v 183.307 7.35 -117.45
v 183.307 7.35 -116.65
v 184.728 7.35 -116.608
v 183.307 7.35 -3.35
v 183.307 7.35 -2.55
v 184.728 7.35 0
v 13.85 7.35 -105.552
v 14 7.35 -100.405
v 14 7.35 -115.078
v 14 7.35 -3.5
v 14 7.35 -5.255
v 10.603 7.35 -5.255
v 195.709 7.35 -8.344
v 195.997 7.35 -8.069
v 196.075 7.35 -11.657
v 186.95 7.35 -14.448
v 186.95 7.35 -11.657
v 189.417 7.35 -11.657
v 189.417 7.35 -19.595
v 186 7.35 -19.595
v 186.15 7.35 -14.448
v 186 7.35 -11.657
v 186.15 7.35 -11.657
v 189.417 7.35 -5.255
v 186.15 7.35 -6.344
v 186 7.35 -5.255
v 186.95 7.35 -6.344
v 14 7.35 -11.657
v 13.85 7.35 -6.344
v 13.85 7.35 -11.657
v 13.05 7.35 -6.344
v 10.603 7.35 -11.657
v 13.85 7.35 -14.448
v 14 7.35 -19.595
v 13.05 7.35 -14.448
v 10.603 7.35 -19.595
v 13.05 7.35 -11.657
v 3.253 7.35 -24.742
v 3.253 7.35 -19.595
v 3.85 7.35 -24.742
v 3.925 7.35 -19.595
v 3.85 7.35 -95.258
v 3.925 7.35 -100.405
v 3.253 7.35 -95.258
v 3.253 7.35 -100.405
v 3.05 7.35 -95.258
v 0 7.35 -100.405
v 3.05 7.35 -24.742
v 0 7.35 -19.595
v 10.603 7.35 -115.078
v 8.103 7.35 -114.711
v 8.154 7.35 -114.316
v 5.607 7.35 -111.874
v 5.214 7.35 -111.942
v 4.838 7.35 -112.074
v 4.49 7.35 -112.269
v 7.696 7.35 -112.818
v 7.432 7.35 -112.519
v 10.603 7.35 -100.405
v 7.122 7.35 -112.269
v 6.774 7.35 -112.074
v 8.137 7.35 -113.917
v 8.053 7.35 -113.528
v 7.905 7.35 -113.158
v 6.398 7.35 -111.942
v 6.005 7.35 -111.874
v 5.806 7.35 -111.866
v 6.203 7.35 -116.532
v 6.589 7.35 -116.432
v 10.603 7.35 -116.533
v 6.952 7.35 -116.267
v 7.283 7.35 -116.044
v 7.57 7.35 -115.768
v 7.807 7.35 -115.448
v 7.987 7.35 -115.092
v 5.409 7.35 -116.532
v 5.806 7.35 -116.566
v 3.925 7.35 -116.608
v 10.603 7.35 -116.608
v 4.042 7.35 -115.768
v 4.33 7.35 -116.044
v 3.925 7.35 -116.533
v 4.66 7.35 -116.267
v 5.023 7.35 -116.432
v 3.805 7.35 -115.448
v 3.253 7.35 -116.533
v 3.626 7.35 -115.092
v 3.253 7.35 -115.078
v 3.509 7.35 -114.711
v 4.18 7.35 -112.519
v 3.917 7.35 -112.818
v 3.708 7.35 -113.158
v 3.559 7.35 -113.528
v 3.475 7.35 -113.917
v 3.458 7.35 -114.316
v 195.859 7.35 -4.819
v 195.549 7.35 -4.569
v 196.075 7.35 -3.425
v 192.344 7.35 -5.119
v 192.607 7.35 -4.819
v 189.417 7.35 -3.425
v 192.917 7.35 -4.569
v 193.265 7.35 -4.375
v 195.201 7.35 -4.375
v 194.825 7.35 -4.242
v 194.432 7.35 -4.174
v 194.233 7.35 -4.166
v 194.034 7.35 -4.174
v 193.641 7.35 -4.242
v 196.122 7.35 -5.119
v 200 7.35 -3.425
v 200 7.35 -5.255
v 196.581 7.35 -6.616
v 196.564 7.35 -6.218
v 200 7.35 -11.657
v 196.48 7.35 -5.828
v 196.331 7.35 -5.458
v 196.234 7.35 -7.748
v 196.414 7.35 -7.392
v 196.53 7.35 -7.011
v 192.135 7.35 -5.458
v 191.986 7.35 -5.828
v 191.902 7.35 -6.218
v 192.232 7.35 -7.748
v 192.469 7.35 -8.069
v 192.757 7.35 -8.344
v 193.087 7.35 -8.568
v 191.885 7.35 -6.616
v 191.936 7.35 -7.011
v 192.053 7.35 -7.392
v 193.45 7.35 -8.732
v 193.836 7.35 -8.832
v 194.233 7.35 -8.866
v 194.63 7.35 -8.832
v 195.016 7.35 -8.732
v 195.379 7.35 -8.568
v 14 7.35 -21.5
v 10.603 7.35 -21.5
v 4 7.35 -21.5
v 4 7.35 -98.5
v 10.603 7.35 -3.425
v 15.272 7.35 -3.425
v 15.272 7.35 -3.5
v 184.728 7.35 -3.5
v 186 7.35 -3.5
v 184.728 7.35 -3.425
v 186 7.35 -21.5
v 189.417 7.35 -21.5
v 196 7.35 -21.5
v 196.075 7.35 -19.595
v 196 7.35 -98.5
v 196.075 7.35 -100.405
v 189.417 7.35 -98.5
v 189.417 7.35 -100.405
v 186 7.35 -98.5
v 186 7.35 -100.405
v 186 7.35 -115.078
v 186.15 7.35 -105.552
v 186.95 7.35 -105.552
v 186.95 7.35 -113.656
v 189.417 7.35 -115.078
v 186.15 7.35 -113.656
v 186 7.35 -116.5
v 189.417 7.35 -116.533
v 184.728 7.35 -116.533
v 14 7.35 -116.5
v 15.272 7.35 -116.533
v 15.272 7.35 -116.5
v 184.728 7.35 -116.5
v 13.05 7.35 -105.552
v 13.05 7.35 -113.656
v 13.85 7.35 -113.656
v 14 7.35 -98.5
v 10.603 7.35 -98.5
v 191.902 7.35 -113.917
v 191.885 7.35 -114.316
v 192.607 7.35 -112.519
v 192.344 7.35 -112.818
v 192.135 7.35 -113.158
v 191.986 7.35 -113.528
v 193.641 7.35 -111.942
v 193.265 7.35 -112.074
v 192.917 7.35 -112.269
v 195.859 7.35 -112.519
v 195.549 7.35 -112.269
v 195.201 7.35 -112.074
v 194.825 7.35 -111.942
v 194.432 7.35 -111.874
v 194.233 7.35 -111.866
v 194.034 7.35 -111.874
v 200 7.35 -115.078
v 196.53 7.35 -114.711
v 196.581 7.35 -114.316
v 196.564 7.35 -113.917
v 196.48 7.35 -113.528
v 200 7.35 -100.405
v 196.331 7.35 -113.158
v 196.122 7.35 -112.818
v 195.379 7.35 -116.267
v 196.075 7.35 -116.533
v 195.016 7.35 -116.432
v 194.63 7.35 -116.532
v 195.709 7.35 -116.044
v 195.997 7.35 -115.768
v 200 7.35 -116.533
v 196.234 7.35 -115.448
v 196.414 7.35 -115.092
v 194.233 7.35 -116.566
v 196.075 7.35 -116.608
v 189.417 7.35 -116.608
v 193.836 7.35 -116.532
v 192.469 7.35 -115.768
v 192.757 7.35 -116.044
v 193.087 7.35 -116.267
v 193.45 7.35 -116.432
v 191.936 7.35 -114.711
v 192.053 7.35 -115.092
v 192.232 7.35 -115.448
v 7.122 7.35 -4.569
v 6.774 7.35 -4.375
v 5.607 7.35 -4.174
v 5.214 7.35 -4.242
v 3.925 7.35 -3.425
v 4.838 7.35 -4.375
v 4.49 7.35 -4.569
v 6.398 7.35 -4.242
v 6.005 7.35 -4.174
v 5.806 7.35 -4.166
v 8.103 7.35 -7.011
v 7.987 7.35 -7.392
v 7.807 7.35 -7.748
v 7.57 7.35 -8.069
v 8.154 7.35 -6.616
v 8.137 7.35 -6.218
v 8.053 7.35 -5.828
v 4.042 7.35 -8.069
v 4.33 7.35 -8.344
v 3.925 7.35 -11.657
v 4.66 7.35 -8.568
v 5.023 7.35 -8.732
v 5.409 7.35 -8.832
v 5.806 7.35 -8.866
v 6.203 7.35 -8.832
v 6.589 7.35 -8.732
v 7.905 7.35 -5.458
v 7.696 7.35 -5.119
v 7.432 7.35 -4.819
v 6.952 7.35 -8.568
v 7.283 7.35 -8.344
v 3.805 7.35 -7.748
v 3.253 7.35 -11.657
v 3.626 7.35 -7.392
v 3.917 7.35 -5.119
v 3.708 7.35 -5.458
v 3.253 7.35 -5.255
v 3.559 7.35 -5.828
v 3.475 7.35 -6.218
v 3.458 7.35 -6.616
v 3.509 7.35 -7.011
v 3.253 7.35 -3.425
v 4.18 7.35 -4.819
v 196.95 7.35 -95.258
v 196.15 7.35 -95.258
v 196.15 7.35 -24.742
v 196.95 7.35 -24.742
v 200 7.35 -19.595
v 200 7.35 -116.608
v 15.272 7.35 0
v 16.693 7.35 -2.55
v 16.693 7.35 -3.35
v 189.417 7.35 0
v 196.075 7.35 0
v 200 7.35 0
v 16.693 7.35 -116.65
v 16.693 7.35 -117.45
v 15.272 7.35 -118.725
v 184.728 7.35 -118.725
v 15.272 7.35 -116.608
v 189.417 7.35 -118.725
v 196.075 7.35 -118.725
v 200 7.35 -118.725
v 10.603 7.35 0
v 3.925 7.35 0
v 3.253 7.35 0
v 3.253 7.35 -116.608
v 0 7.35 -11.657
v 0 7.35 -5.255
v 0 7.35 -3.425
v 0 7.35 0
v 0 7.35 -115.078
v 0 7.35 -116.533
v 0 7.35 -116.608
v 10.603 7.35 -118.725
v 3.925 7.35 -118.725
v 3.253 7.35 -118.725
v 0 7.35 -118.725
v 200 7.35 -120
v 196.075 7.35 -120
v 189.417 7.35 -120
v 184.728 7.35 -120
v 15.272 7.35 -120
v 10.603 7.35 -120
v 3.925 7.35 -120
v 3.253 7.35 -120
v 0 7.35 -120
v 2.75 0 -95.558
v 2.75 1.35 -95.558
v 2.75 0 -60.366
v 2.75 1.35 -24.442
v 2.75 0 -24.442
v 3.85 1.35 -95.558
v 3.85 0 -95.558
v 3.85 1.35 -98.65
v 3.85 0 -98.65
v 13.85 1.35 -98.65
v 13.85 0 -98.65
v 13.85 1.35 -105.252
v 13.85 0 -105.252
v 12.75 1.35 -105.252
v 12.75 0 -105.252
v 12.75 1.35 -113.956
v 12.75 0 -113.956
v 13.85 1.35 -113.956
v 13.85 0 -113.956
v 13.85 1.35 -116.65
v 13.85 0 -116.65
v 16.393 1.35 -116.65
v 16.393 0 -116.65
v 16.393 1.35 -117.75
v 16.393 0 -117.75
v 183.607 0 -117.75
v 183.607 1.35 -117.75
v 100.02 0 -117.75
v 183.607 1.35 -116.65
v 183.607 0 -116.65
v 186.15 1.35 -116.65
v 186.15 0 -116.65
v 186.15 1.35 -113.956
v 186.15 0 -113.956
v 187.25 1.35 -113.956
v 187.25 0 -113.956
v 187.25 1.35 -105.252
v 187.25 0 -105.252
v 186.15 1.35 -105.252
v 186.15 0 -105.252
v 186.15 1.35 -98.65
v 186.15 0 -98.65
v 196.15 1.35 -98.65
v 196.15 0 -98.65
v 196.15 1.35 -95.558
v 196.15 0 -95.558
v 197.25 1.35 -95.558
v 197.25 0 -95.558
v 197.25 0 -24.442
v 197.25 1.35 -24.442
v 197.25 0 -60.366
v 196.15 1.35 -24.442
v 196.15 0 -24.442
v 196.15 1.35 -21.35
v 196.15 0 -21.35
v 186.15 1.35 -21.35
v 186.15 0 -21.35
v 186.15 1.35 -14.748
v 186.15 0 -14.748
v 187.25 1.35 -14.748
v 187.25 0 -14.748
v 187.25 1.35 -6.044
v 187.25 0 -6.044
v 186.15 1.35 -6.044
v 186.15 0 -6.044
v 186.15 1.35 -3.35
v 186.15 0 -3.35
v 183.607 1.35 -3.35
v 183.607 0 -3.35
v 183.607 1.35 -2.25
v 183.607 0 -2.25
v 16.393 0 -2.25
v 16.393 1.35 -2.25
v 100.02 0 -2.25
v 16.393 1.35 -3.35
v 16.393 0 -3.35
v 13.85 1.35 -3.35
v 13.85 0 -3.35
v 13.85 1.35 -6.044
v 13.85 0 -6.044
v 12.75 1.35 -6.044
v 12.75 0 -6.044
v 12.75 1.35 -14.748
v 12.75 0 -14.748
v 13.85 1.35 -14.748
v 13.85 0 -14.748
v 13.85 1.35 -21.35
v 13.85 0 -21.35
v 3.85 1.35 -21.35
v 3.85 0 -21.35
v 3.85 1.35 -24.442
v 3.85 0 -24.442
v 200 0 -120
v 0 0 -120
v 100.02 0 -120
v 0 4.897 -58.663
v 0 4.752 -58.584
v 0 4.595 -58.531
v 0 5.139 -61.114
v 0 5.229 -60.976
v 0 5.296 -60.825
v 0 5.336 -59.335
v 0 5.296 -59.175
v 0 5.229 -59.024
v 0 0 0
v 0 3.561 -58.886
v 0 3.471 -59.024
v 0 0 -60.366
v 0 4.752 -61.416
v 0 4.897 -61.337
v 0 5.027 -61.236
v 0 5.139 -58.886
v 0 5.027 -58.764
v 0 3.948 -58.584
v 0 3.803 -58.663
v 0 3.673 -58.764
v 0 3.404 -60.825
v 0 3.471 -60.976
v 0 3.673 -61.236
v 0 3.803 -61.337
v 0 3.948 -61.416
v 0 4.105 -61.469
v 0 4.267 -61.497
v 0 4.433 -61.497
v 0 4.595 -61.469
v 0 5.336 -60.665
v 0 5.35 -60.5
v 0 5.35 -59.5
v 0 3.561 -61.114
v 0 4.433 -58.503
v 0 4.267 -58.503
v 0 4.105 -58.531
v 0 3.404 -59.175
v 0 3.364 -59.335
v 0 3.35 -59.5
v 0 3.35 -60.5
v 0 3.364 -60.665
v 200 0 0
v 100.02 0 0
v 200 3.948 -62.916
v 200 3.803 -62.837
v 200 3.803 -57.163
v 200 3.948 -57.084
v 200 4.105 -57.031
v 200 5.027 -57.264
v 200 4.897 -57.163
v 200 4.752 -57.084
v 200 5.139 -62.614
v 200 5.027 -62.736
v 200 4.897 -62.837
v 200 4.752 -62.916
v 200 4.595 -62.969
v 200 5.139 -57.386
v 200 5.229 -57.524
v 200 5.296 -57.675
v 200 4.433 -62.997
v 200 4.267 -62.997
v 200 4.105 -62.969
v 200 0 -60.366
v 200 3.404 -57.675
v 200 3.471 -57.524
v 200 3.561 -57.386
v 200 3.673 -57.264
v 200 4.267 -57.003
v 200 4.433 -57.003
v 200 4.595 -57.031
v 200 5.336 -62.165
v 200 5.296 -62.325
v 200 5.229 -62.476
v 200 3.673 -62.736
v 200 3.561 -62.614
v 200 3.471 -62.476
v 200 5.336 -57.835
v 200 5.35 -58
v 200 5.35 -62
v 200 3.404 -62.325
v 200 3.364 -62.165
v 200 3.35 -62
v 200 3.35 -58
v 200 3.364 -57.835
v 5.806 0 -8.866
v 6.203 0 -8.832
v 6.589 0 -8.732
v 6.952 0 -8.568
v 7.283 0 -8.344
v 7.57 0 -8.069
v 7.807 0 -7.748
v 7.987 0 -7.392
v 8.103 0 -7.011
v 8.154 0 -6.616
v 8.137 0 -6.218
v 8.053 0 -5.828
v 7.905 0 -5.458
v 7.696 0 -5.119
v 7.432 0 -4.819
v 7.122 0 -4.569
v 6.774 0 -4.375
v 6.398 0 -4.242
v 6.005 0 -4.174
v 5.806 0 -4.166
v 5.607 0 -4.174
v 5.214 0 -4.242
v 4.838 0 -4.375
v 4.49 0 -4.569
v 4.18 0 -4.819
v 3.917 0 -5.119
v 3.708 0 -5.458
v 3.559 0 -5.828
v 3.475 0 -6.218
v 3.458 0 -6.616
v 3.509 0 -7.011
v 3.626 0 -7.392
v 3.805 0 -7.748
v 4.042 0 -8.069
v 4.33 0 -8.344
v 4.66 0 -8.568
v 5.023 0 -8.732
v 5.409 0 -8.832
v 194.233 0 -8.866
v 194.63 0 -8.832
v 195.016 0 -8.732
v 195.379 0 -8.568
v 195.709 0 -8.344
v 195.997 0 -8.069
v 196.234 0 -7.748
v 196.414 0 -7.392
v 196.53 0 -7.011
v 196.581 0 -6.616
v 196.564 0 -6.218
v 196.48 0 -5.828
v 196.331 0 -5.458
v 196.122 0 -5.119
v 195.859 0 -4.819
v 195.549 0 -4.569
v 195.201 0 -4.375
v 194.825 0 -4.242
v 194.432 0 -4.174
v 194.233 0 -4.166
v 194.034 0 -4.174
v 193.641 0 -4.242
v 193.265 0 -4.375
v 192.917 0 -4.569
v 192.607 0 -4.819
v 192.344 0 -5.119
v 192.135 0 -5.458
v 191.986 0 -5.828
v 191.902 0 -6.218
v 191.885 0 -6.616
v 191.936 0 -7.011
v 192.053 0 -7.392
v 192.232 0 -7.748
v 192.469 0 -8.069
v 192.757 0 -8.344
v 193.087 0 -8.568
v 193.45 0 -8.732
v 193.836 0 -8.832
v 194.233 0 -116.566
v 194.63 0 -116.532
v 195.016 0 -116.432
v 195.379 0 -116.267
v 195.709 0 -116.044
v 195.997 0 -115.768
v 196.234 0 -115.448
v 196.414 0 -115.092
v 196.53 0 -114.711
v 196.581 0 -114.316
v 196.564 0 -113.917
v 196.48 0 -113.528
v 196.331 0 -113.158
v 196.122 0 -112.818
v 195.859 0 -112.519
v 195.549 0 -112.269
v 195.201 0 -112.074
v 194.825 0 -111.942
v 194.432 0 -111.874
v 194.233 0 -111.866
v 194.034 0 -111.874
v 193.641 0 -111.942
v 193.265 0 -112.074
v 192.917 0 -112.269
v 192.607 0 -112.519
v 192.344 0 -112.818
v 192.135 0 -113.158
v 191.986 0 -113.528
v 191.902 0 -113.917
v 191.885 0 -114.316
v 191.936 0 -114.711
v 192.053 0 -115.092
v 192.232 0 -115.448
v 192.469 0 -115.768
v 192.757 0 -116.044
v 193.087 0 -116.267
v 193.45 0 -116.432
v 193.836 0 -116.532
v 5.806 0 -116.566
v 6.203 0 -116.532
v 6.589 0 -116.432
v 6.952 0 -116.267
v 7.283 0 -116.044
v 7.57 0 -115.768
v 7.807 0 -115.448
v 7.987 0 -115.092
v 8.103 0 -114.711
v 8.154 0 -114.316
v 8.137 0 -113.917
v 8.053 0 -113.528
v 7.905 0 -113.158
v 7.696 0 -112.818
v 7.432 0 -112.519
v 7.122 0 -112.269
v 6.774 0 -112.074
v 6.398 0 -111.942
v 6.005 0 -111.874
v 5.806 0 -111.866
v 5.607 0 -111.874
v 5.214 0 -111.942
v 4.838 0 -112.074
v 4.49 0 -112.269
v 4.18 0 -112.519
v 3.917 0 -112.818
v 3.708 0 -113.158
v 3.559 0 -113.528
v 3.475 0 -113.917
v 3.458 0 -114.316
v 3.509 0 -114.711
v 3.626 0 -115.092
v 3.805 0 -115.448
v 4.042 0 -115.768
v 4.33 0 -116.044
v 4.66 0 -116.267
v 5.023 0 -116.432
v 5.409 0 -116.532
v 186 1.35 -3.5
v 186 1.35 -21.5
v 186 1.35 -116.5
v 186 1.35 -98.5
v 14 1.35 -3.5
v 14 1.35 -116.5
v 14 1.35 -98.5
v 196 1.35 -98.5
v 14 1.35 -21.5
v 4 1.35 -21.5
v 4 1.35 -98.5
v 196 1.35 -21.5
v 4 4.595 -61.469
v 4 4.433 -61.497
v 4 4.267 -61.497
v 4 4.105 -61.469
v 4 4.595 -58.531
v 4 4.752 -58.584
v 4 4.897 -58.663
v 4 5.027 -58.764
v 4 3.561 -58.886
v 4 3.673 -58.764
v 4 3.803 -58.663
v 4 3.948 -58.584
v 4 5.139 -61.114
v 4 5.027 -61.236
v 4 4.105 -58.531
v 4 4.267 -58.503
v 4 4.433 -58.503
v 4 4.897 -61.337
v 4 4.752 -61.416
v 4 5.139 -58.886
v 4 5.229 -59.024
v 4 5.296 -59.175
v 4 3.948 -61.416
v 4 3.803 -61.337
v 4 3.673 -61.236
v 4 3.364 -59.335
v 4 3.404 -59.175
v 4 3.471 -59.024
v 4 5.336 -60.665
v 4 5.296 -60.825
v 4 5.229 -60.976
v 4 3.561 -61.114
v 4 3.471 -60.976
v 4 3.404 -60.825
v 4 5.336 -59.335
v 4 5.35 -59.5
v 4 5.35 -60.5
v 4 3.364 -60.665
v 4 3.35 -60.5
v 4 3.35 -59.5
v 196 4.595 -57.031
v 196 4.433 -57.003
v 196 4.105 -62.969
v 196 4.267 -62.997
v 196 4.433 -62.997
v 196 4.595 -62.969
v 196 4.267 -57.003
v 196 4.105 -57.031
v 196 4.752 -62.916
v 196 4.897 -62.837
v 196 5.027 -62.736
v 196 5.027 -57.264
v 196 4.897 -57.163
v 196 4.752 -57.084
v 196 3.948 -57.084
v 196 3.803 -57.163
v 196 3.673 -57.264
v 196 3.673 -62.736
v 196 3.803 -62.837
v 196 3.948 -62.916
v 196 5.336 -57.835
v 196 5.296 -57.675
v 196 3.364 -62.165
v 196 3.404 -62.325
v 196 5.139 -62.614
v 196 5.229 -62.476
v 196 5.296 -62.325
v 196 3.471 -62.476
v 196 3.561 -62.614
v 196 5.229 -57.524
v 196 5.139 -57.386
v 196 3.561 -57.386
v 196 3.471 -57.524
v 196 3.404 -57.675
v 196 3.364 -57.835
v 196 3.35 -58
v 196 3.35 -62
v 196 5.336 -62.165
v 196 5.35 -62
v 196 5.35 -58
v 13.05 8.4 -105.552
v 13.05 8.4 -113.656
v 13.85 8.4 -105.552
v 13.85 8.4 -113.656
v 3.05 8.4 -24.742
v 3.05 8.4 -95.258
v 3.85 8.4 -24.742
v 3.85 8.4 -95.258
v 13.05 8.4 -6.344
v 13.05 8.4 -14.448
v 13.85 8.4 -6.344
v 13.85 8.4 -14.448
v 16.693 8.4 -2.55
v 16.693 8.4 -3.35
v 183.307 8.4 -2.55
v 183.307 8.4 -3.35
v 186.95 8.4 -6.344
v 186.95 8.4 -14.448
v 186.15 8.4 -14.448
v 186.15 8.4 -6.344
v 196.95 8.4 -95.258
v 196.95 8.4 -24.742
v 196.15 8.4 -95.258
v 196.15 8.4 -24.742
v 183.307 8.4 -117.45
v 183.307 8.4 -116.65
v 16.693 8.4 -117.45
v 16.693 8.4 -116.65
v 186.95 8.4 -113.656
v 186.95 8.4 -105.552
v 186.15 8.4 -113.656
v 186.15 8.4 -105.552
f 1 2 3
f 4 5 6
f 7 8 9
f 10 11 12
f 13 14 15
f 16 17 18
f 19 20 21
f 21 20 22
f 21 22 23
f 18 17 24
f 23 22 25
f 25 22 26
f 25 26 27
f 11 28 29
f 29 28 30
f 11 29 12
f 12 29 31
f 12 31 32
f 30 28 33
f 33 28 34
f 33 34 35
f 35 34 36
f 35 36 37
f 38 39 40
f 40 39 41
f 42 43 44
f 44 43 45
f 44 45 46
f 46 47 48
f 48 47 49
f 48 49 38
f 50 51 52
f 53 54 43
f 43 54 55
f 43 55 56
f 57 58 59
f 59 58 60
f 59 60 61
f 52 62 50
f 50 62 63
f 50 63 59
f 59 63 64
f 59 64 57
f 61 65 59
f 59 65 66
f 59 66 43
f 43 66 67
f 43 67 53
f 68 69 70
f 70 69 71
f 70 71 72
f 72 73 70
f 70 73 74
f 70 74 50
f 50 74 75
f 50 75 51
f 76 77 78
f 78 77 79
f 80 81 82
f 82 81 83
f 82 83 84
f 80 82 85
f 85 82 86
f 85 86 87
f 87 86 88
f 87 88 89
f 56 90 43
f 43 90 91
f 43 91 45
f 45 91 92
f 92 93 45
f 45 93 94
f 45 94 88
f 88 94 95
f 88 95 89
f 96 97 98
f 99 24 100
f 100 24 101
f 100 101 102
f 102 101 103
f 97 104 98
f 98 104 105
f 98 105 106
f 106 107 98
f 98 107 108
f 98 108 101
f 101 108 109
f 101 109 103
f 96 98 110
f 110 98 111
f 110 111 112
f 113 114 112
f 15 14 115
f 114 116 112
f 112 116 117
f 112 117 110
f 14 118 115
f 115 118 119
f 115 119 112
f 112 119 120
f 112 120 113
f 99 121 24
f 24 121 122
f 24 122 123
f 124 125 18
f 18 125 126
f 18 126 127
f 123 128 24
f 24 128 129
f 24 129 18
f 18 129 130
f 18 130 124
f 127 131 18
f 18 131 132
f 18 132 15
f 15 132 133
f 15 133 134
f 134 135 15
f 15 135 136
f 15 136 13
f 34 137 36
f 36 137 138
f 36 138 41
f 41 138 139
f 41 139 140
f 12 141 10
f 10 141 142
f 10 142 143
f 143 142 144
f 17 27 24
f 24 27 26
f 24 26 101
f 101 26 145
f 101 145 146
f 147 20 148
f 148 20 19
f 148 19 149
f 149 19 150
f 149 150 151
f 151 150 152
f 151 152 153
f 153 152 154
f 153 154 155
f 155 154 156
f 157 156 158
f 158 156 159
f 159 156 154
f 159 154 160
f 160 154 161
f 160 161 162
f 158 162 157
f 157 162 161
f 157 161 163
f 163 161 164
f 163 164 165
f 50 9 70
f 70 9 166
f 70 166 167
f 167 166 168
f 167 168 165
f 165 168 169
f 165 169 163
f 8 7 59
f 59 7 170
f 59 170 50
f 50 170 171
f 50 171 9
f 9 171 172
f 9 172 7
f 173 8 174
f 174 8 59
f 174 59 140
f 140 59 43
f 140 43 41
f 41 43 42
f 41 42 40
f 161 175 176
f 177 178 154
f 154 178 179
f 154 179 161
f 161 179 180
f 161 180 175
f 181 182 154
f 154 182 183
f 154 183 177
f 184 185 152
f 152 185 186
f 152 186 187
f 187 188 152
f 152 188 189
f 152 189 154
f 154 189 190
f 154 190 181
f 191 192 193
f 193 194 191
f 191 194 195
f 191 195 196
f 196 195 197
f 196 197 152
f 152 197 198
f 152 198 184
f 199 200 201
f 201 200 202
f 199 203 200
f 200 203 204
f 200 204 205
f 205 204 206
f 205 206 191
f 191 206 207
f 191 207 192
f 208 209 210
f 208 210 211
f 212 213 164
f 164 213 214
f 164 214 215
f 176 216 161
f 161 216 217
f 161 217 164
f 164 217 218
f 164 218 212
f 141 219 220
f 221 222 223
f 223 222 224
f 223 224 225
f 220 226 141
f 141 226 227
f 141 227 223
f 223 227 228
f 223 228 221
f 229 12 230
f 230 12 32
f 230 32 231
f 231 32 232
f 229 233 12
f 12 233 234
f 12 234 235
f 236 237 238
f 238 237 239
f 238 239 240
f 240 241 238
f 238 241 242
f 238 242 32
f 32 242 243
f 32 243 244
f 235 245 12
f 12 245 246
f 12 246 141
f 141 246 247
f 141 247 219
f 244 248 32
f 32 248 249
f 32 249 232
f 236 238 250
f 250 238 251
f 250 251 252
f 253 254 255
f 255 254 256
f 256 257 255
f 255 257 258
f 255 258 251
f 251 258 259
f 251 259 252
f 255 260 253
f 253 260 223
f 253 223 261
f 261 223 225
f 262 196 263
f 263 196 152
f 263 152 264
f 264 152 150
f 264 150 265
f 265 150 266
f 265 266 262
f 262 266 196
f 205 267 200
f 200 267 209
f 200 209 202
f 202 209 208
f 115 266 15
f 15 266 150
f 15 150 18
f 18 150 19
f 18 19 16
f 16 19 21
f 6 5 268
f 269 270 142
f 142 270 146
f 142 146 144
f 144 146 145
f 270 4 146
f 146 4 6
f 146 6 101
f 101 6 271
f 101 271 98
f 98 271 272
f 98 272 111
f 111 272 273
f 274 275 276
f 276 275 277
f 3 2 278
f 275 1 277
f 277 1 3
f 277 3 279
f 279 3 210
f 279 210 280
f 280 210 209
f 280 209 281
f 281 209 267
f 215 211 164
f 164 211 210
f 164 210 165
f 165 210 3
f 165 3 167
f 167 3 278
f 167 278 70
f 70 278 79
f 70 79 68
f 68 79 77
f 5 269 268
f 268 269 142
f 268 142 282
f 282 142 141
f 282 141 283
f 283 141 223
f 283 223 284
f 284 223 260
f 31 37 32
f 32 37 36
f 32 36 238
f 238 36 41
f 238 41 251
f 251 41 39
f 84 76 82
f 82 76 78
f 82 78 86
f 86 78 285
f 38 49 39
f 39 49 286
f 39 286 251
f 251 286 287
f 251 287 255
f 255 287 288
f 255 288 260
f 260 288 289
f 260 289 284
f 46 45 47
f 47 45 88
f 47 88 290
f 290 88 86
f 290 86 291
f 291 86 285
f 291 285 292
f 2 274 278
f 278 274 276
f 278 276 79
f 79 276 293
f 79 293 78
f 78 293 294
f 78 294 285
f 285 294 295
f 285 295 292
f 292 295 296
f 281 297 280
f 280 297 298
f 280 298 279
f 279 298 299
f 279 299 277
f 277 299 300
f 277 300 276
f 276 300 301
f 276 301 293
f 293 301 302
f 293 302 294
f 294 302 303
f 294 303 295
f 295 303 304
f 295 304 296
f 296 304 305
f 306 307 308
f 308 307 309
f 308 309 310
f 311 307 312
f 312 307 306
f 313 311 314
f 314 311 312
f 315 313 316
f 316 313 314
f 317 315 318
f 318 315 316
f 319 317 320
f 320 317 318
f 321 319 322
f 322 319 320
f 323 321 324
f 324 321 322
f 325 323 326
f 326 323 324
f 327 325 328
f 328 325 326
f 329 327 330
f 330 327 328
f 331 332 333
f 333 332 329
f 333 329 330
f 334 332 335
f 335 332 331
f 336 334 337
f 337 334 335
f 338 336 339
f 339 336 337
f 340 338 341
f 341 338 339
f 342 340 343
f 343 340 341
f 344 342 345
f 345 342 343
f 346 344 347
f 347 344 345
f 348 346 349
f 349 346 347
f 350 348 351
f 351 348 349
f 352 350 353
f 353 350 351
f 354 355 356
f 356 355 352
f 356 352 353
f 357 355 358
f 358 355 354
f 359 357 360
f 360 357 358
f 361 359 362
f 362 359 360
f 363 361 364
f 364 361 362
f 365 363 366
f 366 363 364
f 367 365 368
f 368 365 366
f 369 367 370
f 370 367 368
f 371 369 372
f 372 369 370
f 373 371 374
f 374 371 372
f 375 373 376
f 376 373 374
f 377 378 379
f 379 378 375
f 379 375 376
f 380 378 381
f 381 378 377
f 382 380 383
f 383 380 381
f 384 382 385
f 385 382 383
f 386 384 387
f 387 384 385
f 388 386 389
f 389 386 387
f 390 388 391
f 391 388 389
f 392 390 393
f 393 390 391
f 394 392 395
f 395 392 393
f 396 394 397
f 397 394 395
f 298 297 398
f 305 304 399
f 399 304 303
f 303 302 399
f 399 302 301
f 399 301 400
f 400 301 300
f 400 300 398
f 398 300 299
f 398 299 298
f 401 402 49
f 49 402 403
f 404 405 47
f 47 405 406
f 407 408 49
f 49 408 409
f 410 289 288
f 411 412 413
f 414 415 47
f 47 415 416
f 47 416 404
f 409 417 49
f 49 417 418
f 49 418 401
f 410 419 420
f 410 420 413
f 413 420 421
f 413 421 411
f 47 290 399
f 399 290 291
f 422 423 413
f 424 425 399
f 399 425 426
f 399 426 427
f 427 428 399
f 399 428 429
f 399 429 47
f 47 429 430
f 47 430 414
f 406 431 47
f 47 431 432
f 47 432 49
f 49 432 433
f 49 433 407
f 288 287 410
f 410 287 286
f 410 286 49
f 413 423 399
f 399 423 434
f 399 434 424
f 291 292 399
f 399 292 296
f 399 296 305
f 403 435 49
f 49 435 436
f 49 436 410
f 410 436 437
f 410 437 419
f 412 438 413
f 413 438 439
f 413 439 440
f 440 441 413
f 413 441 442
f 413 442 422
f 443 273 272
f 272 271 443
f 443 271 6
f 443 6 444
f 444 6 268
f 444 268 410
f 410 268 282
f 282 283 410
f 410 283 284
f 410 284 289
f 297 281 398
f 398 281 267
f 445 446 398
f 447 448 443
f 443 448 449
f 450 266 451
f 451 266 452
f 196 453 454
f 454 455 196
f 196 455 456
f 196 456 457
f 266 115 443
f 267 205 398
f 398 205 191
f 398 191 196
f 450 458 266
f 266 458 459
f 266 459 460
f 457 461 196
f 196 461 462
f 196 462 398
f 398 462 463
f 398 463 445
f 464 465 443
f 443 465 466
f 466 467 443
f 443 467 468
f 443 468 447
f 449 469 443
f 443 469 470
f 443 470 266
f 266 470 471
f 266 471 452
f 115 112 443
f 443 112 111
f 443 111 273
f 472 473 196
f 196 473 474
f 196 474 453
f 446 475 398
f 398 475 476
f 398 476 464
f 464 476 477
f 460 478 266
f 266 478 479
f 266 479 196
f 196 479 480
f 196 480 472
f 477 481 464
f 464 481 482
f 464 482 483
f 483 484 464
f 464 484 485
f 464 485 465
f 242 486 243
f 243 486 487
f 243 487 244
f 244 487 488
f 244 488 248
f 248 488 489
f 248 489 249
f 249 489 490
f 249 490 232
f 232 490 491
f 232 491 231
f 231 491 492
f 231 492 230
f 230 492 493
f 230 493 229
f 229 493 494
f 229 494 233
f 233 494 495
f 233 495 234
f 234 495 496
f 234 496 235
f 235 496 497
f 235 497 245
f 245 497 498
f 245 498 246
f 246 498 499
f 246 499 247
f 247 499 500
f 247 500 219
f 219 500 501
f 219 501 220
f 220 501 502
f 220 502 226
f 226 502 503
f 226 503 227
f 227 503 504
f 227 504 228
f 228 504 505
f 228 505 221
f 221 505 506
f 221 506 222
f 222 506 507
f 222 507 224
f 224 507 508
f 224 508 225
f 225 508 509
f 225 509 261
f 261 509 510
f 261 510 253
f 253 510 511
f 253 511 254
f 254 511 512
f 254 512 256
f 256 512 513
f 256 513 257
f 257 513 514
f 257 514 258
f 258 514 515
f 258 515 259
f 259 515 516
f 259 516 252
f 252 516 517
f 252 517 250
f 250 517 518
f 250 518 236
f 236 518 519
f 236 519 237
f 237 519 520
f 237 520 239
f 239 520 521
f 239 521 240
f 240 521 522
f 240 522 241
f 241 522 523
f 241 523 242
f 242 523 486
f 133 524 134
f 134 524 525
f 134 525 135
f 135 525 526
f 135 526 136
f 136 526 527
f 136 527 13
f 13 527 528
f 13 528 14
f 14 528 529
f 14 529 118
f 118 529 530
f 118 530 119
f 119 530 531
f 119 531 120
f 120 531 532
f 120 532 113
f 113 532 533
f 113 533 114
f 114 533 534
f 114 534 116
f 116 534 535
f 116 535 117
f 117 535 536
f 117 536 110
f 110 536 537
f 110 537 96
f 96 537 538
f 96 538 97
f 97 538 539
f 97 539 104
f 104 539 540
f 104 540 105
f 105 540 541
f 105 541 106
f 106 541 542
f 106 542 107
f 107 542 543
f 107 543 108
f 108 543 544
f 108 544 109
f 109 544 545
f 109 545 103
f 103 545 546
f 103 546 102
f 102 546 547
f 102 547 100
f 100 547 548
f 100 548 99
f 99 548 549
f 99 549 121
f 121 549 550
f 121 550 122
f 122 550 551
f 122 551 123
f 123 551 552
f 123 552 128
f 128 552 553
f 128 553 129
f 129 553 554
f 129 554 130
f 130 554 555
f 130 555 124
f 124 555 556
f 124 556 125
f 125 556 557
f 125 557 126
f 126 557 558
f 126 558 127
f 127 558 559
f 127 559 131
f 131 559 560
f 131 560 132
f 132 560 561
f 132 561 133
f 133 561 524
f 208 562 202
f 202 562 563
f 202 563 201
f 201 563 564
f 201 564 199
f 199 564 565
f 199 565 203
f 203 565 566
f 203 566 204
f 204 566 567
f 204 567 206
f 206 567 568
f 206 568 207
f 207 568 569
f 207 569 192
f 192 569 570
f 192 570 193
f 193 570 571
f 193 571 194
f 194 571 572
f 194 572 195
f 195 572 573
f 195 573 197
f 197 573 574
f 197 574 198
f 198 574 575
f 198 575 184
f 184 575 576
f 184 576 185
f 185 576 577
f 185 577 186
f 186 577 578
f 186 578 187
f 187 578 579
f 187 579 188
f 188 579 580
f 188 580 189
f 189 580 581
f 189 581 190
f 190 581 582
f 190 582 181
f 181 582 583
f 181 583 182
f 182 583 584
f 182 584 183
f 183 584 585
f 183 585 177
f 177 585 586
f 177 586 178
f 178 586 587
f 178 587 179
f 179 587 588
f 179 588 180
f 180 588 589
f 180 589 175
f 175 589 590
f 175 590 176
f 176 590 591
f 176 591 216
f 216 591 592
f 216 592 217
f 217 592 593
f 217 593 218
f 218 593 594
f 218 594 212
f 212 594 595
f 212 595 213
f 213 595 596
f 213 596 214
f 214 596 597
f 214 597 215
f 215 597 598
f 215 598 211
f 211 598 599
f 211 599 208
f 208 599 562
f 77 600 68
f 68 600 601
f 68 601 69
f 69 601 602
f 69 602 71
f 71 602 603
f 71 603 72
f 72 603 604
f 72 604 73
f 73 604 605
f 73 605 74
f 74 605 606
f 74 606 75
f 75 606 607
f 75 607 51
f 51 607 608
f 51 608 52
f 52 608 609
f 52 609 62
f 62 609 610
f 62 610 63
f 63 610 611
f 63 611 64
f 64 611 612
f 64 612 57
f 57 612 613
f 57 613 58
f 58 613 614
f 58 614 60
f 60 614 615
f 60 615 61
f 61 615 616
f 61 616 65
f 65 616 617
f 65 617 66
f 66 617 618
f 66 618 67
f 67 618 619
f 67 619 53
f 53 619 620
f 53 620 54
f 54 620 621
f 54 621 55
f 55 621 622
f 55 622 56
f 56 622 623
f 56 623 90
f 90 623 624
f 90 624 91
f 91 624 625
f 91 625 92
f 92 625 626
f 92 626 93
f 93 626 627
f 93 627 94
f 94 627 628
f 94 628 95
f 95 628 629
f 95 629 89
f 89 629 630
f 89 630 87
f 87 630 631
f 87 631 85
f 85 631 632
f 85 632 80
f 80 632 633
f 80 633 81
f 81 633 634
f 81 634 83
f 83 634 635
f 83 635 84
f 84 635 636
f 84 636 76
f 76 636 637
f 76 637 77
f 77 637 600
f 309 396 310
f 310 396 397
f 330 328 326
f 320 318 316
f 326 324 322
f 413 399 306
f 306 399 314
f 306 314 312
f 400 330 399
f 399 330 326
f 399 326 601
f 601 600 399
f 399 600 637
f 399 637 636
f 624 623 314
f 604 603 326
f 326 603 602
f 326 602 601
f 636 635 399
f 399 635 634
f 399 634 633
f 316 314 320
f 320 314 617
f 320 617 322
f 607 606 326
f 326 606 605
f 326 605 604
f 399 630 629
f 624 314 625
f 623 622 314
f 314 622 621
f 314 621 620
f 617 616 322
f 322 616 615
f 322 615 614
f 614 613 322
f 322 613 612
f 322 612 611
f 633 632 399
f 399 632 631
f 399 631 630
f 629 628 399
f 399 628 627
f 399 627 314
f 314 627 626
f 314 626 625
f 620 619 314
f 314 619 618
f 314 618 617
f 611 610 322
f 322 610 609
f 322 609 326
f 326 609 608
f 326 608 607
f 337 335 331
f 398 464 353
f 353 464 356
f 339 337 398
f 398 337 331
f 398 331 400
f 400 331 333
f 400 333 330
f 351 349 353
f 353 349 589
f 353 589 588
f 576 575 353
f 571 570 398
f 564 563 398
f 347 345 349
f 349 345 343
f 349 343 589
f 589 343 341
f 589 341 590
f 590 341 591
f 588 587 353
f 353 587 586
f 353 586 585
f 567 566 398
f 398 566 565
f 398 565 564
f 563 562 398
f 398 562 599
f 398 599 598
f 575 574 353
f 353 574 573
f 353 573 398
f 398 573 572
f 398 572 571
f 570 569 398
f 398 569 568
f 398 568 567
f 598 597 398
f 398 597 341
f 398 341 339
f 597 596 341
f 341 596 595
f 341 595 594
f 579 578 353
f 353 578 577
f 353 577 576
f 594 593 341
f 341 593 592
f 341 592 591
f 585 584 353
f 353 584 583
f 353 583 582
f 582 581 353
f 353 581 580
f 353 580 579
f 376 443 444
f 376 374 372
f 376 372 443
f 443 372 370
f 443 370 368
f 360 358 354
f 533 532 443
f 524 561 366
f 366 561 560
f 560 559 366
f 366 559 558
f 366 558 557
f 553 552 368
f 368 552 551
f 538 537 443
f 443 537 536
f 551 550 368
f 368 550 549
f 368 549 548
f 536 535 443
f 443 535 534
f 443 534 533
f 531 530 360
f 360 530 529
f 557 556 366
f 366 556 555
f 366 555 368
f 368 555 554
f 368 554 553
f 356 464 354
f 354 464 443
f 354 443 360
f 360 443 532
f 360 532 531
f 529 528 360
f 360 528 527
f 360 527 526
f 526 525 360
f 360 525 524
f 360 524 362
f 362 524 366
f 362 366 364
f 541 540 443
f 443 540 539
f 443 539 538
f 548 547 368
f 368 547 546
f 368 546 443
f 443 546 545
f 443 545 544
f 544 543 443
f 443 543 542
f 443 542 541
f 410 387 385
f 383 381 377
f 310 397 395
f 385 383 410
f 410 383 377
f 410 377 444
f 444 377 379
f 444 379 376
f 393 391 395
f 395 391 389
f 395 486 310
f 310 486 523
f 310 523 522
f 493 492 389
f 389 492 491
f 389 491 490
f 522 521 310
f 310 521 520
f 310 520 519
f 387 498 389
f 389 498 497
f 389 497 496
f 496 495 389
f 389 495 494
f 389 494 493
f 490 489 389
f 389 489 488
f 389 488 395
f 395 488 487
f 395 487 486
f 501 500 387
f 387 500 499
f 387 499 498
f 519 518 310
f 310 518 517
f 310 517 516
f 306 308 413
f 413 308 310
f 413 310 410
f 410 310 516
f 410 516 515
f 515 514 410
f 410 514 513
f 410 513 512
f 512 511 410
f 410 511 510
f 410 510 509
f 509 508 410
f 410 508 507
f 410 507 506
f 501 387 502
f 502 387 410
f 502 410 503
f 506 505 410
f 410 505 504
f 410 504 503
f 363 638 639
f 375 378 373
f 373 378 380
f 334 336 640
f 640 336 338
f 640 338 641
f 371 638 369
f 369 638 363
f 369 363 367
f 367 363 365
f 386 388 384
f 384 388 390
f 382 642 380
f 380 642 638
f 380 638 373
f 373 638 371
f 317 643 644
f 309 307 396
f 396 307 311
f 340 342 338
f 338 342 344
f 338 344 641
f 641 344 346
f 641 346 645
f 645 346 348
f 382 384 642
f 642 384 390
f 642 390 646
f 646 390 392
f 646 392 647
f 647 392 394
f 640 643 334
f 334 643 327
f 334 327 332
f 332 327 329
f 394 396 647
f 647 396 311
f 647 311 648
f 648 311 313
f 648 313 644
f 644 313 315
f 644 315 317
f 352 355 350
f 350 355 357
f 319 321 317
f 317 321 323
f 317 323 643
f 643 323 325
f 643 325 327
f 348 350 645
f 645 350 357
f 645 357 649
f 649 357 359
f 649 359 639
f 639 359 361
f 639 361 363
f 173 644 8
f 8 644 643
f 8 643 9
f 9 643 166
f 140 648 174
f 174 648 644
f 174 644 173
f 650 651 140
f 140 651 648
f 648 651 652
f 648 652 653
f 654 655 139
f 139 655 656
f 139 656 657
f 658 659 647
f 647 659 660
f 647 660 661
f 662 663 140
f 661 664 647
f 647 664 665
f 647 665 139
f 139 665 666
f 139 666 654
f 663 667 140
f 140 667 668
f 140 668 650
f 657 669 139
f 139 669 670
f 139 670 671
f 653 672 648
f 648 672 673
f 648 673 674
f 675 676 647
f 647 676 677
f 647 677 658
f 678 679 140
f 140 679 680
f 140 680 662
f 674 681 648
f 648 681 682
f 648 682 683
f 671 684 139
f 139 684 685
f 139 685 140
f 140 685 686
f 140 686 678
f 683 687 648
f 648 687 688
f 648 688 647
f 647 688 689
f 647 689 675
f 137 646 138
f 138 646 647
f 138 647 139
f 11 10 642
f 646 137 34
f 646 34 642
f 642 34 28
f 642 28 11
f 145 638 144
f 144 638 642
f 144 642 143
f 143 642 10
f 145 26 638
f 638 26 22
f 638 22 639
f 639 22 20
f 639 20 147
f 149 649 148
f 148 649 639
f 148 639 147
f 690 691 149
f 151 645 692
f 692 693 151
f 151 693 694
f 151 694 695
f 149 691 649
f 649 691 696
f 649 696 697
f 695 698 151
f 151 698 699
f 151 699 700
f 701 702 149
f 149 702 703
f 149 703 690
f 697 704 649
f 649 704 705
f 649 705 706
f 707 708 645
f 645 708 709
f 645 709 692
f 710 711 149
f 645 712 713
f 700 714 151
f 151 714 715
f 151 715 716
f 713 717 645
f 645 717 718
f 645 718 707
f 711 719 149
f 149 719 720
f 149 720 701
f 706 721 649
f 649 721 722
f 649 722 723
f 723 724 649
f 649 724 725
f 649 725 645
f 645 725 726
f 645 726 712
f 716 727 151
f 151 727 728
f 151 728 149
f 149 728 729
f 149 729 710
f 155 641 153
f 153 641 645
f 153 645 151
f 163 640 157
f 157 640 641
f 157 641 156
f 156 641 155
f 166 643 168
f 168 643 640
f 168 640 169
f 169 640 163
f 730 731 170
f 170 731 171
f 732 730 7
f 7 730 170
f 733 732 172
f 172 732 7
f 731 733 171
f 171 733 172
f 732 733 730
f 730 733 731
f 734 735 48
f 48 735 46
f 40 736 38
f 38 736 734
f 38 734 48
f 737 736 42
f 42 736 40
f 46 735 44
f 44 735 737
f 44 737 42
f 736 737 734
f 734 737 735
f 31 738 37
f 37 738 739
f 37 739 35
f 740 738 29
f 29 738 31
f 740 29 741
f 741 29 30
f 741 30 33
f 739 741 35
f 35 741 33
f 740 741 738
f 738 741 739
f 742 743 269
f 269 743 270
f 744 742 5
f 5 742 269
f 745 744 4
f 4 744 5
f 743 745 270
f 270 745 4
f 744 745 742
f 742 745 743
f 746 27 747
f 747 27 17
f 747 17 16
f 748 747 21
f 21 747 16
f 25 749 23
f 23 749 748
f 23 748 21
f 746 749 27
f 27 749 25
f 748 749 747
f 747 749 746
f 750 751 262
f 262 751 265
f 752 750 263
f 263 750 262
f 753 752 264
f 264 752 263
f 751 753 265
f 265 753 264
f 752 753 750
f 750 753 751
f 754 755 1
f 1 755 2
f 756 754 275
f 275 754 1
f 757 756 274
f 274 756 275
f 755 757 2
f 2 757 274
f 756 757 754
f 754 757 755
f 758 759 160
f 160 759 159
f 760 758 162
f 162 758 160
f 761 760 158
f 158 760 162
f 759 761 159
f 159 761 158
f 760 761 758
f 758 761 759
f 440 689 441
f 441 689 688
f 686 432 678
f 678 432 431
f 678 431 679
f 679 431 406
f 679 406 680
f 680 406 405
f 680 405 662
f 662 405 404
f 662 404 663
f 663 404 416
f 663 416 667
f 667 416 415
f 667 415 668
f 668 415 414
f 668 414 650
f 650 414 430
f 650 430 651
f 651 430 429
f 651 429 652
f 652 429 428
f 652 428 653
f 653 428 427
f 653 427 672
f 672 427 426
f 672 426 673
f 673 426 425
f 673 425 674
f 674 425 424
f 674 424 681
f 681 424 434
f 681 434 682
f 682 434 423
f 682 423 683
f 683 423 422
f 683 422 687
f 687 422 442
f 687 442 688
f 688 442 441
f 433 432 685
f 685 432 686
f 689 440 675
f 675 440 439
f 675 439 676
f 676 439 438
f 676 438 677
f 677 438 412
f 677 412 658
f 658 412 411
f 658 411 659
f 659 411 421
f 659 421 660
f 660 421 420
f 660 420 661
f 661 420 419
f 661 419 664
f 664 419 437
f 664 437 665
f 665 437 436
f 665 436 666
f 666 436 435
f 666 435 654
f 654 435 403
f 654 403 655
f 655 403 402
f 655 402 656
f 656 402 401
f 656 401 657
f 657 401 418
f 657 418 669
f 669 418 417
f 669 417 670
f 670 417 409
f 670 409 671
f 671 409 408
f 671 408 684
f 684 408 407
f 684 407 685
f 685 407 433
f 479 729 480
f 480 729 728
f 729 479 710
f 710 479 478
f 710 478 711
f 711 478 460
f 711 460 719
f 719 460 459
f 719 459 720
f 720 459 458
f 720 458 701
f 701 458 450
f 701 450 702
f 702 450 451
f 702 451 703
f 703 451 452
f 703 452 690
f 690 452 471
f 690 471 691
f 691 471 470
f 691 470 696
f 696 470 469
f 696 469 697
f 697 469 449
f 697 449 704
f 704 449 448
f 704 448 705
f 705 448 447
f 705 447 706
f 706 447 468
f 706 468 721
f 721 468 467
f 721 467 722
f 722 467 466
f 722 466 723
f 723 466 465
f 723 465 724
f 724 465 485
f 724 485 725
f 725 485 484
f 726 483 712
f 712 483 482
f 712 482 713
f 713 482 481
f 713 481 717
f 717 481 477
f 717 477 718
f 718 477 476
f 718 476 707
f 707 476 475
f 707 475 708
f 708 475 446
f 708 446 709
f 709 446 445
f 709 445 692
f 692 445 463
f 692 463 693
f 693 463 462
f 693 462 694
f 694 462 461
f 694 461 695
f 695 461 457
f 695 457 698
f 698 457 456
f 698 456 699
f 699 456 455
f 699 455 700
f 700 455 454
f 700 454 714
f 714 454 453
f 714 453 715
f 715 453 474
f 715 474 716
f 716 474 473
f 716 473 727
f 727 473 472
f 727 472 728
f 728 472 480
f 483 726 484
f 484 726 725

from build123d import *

# Parameters (mm, degrees)
SKETCH8_W           = 200
SKETCH8_H           = 120
SKETCH8_R           = 2.35
BOSS_EXTRUDE4_DEPTH = 1.35
SKETCH9_W           = 200
SKETCH9_H           = 120
SKETCH9_R           = 2.35
BOSS_EXTRUDE5_DEPTH = 6
SKETCH10_W          = 0.8
SKETCH10_H          = 8.103385626
SKETCH10_W_2        = 166.613370644
SKETCH10_H_2        = 0.8
SKETCH10_H_3        = 70.515232796
BOSS_EXTRUDE6_DEPTH = 1.05
CUT_EXTRUDE1_REACH  = 235.389
CUT_EXTRUDE2_REACH  = 235.389


with BuildPart() as part:
    # Sketch8 → Boss-Extrude4 (new body)
    with BuildSketch(Plane(origin=(0, 0, 0), x_dir=(1, 0, 0), z_dir=(0, 1, 0))):
        with Locations((100, 60)):
            Rectangle(SKETCH8_W, SKETCH8_H)
        with Locations(Location((5.806188151, 6.51599975, 0), (0, 0, 90))):
            Circle(SKETCH8_R, mode=Mode.SUBTRACT)
        with Locations(Location((194.233048897, 6.51599975, 0), (0, 0, 90))):
            Circle(SKETCH8_R, mode=Mode.SUBTRACT)
        with Locations(Location((194.233048897, 114.215856496, 0), (0, 0, 90))):
            Circle(SKETCH8_R, mode=Mode.SUBTRACT)
        with Locations(Location((5.806188151, 114.215856496, 0), (0, 0, 90))):
            Circle(SKETCH8_R, mode=Mode.SUBTRACT)
        Polygon((2.75, 95.557616398), (2.75, 24.442383602), (3.85, 24.442383602), (3.85, 21.35), (13.85, 21.35), (13.85, 14.747824367), (12.75, 14.747824367), (12.75, 6.044438741), (13.85, 6.044438741), (13.85, 3.35), (16.393314678, 3.35), (16.393314678, 2.25), (183.606685322, 2.25), (183.606685322, 3.35), (186.15, 3.35), (186.15, 6.044438741), (187.25, 6.044438741), (187.25, 14.747824367), (186.15, 14.747824367), (186.15, 21.35), (196.15, 21.35), (196.15, 24.442383602), (197.25, 24.442383602), (197.25, 95.557616398), (196.15, 95.557616398), (196.15, 98.65), (186.15, 98.65), (186.15, 105.252175633), (187.25, 105.252175633), (187.25, 113.955561259), (186.15, 113.955561259), (186.15, 116.65), (183.606685322, 116.65), (183.606685322, 117.75), (16.393314678, 117.75), (16.393314678, 116.65), (13.85, 116.65), (13.85, 113.955561259), (12.75, 113.955561259), (12.75, 105.252175633), (13.85, 105.252175633), (13.85, 98.65), (3.85, 98.65), (3.85, 95.557616398), align=None, mode=Mode.SUBTRACT)
    extrude(amount=BOSS_EXTRUDE4_DEPTH)

    # Sketch9 → Boss-Extrude5 (add)
    with BuildSketch(Plane(origin=(0, 1.35, 0), x_dir=(1, 0, 0), z_dir=(0, 1, 0))):
        with Locations((100, 60)):
            Rectangle(SKETCH9_W, SKETCH9_H)
        with Locations(Location((194.233048897, 114.215856496, 0), (0, 0, 90))):
            Circle(SKETCH9_R, mode=Mode.SUBTRACT)
        with Locations(Location((194.233048897, 6.51599975, 0), (0, 0, 90))):
            Circle(SKETCH9_R, mode=Mode.SUBTRACT)
        with Locations(Location((5.806188151, 6.51599975, 0), (0, 0, 90))):
            Circle(SKETCH9_R, mode=Mode.SUBTRACT)
        with Locations(Location((5.806188151, 114.215856496, 0), (0, 0, 90))):
            Circle(SKETCH9_R, mode=Mode.SUBTRACT)
        Polygon((183.456685322, 116.5), (186, 116.5), (186, 113.805561259), (186, 105.402175633), (186, 98.5), (196, 98.5), (196, 95.407616398), (196, 24.592383602), (196, 21.5), (186, 21.5), (186, 14.597824367), (186, 6.194438741), (186, 3.5), (183.456685322, 3.5), (16.543314678, 3.5), (14, 3.5), (14, 6.194438741), (14, 14.597824367), (14, 21.5), (4, 21.5), (4, 24.592383602), (4, 95.407616398), (4, 98.5), (14, 98.5), (14, 105.402175633), (14, 113.805561259), (14, 116.5), (16.543314678, 116.5), align=None, mode=Mode.SUBTRACT)
    extrude(amount=BOSS_EXTRUDE5_DEPTH)

    # Sketch10 → Boss-Extrude6 (add)
    with BuildSketch(Plane(origin=(0, 7.35, 0), x_dir=(1, 0, 0), z_dir=(0, 1, 0))):
        with Locations((13.45, 109.603868446)):
            Rectangle(SKETCH10_W, SKETCH10_H)
        with Locations((186.55, 109.603868446)):
            Rectangle(SKETCH10_W, SKETCH10_H)
        with Locations((100, 117.05)):
            Rectangle(SKETCH10_W_2, SKETCH10_H_2)
        with Locations((196.55, 60)):
            Rectangle(SKETCH10_W, SKETCH10_H_3)
        with Locations((186.55, 10.396131554)):
            Rectangle(SKETCH10_W, SKETCH10_H)
        with Locations((100, 2.95)):
            Rectangle(SKETCH10_W_2, SKETCH10_H_2)
        with Locations((13.45, 10.396131554)):
            Rectangle(SKETCH10_W, SKETCH10_H)
        with Locations((3.45, 60)):
            Rectangle(SKETCH10_W, SKETCH10_H_3)
    extrude(amount=BOSS_EXTRUDE6_DEPTH)

    # Sketch11 → Cut-Extrude1 (cut, up to next)
    with BuildSketch(Plane.ZY, mode=Mode.PRIVATE) as cut_extrude1_sk1:
        with BuildLine():
            Line((-60.5, 3.35), (-59.5, 3.35))
            ThreePointArc((-59.5, 3.35), (-58.5, 4.35), (-59.5, 5.35))
            Line((-59.5, 5.35), (-60.5, 5.35))
            ThreePointArc((-60.5, 5.35), (-61.5, 4.35), (-60.5, 3.35))
        make_face()
    cut_extrude1_tool1 = extrude(cut_extrude1_sk1.sketch, amount=-CUT_EXTRUDE1_REACH, mode=Mode.PRIVATE) & part.part
    add(cut_extrude1_tool1.solids().sort_by_distance((0, 4.35, -60))[0], mode=Mode.SUBTRACT)

    # Sketch12 → Cut-Extrude2 (cut, up to next)
    with BuildSketch(Plane(origin=(200, 0, 0), x_dir=(0, 0, -1), z_dir=(1, 0, 0)), mode=Mode.PRIVATE) as cut_extrude2_sk1:
        with BuildLine():
            Line((58, 5.35), (62, 5.35))
            ThreePointArc((62, 5.35), (63, 4.35), (62, 3.35))
            Line((62, 3.35), (58, 3.35))
            ThreePointArc((58, 3.35), (57, 4.35), (58, 5.35))
        make_face()
    cut_extrude2_tool1 = extrude(cut_extrude2_sk1.sketch, amount=-CUT_EXTRUDE2_REACH, mode=Mode.PRIVATE) & part.part
    add(cut_extrude2_tool1.solids().sort_by_distance((200, 4.35, -60))[0], mode=Mode.SUBTRACT)


solid = part.part
